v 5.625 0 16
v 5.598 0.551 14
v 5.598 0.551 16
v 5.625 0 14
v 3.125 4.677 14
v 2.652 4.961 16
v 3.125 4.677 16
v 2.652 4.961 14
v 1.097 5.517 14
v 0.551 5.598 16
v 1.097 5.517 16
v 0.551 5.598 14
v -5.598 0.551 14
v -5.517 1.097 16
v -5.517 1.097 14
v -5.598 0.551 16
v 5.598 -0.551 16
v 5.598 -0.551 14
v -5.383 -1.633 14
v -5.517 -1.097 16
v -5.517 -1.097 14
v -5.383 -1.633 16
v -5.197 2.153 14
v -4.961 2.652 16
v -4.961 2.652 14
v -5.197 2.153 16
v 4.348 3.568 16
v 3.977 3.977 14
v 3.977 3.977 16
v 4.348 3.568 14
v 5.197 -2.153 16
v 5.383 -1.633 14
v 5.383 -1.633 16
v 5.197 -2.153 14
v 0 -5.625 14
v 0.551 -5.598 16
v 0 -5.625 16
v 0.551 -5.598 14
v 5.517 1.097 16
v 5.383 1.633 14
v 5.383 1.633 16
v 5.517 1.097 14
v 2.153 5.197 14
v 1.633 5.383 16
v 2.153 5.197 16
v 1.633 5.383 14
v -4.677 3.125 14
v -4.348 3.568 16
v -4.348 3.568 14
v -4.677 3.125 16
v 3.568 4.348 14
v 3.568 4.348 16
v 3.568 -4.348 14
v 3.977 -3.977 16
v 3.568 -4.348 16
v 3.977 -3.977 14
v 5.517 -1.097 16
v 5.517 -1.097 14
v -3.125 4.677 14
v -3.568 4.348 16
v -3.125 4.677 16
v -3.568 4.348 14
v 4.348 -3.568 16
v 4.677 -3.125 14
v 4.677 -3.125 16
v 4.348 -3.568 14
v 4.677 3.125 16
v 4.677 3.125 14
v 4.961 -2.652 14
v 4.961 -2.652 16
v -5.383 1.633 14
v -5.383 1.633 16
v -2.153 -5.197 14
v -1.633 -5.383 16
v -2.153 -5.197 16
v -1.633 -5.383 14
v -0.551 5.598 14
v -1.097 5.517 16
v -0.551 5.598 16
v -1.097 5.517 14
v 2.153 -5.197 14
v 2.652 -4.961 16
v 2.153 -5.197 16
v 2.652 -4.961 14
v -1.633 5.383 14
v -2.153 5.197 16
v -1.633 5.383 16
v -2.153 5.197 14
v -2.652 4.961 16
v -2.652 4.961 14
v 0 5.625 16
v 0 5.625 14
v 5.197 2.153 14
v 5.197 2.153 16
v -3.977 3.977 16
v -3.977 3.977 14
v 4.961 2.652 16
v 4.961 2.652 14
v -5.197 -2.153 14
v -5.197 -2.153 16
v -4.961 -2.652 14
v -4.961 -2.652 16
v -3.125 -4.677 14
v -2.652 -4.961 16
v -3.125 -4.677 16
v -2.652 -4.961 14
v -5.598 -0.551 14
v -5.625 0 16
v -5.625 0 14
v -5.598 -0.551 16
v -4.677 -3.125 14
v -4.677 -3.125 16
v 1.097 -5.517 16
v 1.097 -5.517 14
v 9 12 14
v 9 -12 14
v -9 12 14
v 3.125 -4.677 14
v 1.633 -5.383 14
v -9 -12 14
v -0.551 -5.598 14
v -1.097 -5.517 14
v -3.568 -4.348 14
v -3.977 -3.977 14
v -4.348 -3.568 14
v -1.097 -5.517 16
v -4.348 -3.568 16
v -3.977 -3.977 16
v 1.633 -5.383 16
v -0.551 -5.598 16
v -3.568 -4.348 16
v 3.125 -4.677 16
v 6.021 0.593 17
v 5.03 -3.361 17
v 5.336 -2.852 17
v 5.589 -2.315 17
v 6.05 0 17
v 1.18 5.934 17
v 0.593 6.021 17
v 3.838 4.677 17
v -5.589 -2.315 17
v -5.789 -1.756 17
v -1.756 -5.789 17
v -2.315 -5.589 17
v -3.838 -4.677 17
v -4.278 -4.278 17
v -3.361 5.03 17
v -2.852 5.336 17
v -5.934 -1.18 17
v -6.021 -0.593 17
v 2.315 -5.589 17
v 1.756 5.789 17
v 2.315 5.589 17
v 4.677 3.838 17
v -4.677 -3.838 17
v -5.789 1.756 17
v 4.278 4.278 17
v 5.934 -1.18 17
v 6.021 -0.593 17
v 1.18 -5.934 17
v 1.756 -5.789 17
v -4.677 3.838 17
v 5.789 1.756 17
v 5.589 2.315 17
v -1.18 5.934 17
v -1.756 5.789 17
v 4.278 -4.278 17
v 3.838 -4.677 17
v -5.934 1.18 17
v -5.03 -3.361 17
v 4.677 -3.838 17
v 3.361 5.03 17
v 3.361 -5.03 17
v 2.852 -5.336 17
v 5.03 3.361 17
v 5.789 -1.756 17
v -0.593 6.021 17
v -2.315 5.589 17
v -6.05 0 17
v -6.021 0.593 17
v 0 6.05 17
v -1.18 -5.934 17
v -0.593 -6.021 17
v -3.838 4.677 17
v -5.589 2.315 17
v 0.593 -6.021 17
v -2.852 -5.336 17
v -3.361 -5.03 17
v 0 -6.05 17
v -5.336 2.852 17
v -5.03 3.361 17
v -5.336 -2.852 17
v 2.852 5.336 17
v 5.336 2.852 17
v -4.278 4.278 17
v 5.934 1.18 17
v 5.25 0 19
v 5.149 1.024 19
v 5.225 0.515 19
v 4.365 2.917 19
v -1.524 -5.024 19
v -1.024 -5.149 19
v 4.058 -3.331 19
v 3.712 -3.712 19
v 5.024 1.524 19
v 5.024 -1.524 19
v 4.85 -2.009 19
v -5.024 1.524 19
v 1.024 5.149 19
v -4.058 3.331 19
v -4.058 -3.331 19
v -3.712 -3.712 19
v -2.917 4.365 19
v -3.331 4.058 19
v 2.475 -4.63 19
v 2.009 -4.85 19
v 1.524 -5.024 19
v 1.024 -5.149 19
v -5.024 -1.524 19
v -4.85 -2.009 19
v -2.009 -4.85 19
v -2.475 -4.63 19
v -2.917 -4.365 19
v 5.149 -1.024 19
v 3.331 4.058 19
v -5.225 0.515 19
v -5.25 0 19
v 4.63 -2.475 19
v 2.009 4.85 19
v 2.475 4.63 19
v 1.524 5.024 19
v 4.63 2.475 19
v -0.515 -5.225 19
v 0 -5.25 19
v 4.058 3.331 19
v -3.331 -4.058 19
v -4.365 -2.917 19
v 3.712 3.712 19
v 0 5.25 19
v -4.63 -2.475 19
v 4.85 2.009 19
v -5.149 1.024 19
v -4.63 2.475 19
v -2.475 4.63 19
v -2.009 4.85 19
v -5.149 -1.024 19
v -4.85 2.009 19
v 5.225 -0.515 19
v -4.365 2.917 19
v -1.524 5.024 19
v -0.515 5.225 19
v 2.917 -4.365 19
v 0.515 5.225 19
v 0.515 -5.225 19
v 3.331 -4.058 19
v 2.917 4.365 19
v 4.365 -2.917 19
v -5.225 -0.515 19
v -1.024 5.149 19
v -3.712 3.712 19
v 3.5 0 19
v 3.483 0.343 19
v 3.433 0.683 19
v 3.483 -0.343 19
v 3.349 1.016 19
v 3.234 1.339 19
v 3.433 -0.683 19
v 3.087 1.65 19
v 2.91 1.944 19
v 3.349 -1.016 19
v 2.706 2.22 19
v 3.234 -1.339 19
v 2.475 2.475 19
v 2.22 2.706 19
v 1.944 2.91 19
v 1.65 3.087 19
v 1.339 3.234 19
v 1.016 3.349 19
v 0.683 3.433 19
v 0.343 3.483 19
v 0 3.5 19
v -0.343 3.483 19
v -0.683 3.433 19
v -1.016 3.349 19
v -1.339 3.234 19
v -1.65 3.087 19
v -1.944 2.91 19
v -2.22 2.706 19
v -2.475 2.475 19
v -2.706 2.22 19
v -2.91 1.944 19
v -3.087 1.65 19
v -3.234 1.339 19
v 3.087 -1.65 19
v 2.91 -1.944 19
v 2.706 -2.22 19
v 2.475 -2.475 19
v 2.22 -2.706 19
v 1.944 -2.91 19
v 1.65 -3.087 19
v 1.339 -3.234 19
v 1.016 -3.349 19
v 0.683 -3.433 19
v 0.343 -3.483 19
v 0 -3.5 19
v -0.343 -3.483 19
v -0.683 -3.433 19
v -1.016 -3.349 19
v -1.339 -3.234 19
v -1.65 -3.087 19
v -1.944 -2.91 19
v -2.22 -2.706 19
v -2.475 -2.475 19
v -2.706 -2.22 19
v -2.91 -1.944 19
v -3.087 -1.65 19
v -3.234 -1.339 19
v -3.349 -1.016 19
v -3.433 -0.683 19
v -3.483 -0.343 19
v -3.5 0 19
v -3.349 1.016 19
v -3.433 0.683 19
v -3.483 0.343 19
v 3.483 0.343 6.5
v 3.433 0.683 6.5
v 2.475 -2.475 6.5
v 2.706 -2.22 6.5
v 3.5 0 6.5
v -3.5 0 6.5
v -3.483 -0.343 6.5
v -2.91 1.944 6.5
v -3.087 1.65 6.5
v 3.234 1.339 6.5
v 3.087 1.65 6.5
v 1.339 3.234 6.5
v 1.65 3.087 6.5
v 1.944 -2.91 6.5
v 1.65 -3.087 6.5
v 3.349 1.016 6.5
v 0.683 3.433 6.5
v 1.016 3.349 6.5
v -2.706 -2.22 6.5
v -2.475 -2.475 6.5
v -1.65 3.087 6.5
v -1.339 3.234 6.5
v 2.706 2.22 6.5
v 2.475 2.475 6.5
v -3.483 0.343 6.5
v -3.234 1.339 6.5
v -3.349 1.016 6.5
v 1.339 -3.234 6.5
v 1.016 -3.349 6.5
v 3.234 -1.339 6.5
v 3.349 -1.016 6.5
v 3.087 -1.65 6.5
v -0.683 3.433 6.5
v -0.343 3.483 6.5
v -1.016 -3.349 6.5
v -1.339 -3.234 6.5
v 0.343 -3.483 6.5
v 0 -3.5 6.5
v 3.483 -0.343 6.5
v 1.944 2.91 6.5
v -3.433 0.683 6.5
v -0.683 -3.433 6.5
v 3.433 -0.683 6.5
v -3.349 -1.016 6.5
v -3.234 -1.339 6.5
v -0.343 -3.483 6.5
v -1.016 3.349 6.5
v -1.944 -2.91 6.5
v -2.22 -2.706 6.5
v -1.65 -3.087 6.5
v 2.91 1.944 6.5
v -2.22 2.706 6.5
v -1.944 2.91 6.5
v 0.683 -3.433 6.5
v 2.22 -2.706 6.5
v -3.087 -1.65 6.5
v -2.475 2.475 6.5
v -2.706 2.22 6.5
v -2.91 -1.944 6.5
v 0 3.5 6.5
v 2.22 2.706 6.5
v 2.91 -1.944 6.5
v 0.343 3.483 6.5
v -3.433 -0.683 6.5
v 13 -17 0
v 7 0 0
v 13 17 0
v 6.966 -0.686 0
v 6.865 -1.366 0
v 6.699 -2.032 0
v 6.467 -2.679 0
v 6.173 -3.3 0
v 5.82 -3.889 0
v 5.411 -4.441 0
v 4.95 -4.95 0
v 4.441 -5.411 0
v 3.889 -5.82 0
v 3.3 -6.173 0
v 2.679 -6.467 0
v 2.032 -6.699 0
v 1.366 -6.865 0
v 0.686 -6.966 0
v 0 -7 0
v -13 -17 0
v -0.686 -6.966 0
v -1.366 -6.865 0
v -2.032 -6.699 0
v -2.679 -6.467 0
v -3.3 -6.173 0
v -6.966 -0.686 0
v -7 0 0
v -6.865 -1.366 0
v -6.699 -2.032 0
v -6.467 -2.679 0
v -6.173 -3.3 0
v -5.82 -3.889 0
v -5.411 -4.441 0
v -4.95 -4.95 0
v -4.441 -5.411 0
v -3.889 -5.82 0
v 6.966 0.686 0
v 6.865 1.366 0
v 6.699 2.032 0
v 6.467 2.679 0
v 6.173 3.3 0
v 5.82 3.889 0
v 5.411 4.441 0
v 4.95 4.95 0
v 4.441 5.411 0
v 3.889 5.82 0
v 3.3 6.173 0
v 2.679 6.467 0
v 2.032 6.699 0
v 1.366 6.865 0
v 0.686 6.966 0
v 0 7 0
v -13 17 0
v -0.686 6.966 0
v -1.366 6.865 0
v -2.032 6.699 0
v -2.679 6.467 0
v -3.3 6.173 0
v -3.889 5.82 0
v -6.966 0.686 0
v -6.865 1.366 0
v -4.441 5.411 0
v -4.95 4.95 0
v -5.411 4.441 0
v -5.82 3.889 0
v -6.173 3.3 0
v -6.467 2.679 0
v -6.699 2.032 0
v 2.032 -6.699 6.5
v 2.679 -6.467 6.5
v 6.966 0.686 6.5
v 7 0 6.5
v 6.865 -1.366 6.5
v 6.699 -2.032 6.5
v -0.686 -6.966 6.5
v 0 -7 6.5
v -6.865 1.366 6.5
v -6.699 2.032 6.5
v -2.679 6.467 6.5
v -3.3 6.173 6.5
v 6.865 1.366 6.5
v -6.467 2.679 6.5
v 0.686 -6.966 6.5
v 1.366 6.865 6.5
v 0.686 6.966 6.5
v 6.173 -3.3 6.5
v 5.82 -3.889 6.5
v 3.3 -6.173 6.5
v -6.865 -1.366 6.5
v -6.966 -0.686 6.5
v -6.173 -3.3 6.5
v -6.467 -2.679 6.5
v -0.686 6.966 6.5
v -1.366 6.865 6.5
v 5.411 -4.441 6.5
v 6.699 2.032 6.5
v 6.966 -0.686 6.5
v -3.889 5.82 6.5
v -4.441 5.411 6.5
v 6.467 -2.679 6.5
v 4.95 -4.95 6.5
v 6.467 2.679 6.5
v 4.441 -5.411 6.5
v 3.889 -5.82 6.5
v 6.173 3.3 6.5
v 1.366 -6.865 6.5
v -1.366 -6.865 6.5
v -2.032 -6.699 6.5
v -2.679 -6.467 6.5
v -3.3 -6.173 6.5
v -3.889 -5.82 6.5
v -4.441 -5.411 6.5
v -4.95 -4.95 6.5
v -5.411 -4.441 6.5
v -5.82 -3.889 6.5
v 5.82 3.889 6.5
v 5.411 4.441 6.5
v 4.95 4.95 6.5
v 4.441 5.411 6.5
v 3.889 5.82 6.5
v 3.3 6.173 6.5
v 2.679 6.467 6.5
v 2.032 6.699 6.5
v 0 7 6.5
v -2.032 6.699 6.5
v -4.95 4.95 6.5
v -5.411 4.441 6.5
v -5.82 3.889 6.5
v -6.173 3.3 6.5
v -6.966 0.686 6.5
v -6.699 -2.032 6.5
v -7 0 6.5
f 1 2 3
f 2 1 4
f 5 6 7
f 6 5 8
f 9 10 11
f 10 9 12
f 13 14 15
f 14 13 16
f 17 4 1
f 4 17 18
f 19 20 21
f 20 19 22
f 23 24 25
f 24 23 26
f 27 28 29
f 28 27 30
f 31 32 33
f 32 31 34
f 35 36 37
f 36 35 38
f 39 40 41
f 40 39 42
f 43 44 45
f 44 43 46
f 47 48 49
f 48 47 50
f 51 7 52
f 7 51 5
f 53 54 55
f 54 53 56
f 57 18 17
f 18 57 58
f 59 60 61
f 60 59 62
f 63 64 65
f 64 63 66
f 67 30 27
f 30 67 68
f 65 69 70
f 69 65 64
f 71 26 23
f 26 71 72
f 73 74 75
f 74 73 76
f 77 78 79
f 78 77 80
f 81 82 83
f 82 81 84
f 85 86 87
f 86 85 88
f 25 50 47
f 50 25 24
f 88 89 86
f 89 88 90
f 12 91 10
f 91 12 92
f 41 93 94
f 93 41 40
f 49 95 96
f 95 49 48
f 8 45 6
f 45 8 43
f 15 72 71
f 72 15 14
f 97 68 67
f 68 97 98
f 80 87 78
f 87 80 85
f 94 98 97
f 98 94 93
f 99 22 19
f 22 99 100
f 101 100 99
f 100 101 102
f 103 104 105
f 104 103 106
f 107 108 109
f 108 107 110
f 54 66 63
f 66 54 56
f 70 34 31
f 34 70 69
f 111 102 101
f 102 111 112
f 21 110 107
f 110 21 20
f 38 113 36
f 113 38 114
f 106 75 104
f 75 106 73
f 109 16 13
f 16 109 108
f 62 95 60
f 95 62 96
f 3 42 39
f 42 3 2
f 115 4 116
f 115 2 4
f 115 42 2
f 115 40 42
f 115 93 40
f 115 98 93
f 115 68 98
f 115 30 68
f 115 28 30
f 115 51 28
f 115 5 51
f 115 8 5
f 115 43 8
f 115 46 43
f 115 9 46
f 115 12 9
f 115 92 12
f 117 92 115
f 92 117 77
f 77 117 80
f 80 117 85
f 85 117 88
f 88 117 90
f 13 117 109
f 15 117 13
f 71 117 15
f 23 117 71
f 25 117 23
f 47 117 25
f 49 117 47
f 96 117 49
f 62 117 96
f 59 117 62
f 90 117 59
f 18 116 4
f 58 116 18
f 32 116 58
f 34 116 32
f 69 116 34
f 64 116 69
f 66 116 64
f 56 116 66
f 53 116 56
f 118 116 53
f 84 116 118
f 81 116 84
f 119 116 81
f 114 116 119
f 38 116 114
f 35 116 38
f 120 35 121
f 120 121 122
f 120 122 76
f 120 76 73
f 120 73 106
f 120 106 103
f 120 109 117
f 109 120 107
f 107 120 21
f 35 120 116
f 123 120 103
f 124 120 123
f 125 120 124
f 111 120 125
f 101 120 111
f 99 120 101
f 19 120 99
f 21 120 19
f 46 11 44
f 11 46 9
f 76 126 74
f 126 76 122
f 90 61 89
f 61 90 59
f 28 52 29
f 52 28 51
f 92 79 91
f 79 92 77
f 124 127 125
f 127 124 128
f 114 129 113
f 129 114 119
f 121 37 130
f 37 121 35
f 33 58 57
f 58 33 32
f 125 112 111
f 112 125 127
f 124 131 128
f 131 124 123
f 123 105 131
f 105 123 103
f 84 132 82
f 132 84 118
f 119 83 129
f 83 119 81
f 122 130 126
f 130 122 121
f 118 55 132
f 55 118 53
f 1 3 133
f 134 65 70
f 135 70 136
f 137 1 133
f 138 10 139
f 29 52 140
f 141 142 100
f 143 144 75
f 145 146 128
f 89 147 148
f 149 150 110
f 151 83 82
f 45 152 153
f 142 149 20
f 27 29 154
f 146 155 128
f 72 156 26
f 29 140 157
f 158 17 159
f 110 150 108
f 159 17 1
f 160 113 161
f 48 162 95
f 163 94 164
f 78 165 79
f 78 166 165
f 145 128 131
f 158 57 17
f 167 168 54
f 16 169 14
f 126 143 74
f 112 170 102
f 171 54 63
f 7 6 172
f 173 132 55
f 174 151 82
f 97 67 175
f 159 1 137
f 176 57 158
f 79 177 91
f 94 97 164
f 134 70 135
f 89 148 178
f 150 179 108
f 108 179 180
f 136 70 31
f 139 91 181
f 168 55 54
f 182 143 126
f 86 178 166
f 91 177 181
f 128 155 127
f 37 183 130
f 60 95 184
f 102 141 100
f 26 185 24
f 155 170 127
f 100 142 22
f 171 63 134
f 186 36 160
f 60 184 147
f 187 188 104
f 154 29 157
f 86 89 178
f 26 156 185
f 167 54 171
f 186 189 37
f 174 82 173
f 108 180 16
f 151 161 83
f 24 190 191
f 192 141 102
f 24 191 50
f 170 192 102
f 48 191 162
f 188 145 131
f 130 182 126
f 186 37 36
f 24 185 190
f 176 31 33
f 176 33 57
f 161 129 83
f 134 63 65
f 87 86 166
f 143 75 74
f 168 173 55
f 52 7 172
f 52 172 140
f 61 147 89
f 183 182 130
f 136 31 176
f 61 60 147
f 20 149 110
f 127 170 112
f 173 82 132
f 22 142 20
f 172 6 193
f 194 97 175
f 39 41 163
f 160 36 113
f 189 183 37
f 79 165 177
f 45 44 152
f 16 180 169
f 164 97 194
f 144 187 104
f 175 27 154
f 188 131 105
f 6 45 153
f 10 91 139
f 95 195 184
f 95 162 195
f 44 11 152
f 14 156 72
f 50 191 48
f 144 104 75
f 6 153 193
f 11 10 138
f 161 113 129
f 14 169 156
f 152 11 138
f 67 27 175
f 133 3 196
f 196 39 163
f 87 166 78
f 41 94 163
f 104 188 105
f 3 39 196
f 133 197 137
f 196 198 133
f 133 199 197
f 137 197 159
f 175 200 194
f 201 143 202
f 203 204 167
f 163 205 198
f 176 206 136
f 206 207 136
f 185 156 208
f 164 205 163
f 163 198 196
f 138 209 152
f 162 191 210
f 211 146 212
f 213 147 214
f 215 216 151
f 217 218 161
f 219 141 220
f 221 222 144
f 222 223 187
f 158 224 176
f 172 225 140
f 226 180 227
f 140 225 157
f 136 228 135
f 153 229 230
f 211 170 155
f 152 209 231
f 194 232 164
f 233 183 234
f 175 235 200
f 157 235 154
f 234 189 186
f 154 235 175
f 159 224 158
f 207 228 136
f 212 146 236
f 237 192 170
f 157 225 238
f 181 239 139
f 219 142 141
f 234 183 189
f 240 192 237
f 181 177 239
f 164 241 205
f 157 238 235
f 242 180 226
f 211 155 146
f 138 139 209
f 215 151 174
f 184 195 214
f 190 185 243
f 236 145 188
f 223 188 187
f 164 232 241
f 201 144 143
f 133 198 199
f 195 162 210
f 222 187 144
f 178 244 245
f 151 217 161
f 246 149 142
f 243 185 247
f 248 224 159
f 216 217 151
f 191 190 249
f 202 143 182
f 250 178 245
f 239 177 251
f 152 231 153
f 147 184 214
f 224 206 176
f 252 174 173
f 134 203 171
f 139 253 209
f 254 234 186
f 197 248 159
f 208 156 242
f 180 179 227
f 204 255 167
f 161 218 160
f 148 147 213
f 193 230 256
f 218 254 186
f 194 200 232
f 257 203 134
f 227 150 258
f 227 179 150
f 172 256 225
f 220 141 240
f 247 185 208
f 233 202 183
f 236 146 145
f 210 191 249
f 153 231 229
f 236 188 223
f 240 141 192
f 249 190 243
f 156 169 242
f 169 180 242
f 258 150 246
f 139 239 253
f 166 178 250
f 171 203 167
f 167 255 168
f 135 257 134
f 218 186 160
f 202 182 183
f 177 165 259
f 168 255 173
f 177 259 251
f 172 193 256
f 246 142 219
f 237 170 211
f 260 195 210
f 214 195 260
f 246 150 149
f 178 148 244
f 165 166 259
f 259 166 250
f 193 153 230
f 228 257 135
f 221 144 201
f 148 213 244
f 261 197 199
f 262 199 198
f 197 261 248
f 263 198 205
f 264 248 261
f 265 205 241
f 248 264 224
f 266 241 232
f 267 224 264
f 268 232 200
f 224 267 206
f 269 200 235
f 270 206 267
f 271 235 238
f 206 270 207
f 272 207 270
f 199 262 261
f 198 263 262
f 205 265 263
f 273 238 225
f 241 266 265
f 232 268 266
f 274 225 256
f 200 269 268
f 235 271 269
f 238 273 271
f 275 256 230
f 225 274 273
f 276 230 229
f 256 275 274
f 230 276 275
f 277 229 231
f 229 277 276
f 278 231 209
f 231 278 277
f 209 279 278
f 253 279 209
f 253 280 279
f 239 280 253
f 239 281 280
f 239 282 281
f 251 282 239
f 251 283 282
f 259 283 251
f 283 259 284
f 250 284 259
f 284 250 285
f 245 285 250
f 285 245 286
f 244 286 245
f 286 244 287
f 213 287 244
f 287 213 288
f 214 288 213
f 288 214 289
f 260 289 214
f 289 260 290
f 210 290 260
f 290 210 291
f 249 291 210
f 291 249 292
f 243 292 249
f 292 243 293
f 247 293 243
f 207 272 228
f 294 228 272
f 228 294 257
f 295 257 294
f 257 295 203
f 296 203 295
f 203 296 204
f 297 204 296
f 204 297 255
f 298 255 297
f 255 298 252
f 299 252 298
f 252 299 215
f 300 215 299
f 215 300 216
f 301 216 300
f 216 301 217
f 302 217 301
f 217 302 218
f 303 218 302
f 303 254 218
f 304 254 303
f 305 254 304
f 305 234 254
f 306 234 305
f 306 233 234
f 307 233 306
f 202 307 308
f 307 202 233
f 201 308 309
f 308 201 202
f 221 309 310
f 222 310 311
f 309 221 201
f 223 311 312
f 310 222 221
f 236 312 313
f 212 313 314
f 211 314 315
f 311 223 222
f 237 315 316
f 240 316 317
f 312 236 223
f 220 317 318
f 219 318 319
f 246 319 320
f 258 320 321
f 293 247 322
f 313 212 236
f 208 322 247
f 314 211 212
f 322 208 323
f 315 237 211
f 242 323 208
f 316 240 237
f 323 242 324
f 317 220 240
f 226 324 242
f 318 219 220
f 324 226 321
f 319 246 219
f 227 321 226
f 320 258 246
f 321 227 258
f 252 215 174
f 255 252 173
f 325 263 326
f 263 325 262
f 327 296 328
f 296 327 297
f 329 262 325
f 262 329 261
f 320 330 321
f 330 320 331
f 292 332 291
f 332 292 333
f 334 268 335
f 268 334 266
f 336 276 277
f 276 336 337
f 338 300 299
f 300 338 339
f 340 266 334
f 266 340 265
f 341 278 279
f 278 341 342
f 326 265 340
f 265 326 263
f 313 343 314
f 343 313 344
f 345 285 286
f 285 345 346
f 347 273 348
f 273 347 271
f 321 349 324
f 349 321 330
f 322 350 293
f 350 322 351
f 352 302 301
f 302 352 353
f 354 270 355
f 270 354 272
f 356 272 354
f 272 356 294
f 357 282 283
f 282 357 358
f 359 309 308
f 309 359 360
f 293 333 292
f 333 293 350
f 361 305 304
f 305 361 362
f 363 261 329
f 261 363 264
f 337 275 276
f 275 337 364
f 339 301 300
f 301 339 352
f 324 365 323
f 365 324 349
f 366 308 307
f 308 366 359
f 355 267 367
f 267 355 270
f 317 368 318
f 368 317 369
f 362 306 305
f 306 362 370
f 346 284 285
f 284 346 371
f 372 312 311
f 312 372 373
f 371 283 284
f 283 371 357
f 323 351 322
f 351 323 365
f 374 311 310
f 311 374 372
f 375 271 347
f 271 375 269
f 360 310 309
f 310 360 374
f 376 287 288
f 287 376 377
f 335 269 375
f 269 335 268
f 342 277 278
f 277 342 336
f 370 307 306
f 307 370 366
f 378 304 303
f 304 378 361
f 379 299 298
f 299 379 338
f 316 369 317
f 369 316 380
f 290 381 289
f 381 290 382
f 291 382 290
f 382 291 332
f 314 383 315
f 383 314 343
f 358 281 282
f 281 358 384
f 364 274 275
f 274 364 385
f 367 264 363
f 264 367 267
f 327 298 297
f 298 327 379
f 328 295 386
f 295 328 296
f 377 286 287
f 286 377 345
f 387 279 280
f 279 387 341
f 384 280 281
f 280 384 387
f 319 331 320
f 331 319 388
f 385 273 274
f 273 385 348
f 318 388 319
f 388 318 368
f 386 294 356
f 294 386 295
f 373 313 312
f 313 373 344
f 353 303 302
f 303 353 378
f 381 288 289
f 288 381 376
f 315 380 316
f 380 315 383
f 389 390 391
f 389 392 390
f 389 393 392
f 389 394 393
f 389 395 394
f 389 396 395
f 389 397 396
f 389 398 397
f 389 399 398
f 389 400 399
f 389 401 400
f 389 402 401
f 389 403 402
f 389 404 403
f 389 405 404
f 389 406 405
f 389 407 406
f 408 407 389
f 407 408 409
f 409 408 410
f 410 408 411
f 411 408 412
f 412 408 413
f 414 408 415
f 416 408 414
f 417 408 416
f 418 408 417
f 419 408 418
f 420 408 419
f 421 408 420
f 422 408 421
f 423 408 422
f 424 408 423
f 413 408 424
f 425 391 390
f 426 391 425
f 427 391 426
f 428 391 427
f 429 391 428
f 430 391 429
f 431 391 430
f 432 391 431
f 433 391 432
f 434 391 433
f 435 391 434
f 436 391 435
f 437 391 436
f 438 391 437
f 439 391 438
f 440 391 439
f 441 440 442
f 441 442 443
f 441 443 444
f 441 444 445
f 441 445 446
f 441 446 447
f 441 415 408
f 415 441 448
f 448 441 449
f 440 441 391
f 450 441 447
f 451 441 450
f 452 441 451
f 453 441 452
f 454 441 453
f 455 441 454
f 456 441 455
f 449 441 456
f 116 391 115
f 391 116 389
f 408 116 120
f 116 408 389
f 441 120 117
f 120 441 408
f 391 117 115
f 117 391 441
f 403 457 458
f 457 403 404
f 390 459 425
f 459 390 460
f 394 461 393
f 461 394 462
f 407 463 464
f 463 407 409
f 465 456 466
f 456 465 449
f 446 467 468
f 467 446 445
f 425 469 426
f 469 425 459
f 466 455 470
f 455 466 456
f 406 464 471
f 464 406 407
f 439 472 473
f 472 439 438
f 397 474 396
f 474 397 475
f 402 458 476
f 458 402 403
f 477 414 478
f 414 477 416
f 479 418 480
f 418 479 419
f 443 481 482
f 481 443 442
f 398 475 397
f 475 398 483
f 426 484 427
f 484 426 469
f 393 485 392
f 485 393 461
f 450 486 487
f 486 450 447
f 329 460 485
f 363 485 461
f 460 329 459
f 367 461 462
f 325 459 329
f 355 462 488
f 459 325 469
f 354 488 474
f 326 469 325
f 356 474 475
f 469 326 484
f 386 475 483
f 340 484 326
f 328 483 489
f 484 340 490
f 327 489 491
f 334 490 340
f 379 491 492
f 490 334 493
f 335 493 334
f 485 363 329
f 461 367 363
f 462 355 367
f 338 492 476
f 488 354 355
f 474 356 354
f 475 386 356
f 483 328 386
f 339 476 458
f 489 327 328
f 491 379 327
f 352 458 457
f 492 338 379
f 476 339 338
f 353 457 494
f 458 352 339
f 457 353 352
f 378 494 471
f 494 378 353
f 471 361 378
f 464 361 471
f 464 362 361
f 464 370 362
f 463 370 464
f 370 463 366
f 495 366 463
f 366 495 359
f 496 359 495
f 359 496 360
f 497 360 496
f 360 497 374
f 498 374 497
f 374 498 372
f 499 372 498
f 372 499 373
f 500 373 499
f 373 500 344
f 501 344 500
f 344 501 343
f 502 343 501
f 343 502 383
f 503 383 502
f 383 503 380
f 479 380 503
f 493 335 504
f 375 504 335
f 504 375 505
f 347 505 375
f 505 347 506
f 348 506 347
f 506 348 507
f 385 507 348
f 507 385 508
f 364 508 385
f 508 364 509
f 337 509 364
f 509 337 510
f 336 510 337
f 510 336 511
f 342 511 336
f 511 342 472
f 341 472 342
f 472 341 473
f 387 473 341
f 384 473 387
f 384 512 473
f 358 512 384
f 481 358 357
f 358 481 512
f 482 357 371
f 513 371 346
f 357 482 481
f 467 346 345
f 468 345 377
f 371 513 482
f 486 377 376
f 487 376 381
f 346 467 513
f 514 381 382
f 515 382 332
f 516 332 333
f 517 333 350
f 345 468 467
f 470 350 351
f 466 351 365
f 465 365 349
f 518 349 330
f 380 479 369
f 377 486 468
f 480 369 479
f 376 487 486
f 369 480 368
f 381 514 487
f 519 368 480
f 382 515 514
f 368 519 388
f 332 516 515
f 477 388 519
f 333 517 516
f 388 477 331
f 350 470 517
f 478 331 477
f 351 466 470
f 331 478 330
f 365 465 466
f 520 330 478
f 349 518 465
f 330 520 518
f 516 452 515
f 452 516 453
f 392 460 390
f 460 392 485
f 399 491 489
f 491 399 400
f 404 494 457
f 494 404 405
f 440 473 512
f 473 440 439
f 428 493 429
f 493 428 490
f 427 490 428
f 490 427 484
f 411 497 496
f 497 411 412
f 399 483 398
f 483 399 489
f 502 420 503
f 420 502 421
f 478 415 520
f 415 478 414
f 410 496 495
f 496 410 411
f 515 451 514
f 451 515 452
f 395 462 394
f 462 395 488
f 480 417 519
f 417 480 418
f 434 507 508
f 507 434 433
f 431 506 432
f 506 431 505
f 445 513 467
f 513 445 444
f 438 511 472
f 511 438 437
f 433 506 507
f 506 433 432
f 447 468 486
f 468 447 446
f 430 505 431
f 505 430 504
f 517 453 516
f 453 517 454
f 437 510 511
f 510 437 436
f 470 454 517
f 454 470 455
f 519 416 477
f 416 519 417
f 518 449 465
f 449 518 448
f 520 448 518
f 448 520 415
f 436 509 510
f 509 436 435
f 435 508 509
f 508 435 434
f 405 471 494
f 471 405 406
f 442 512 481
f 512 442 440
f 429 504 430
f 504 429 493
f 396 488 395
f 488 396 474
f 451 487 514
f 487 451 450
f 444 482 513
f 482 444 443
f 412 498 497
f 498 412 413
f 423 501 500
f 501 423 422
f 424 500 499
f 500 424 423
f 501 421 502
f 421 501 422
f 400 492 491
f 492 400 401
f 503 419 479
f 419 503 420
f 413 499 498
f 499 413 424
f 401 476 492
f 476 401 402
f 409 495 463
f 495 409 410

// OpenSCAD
// --- Parameters ---
// All dimensions are in millimeters (mm)

// Main Body Dimensions
top_width = 18;      // 2cm across the narrow way
top_length = 24;     // 3cm long
bottom_width = 26;   // 3cm across the narrow way
bottom_length = 34;  // 4cm long
foot_height = 14;    // 1.5cm tall

// Screw Hole Dimensions
screw_hole_dia = 7;  // ID of screw hole

// Counterbore (Wider opening at the bottom for a screw head)
counterbore_height = foot_height - 7.5;
counterbore_dia = 14; // Assumed diameter based on image proportions. Change if needed.

// Press-fit Cylinder on Top Face
cylinder_height_1 = 2;     // First segment: constant 11.5mm diameter
cylinder_height_2 = 1.0;     // Second segment: expand to 12.5mm diameter
cylinder_height_3 = 2.0;     // Third segment: shrink to 10.5mm diameter
total_cylinder_height = cylinder_height_1 + cylinder_height_2 + cylinder_height_3;

cylinder_dia_1 = 11.25;       // Starting diameter
cylinder_dia_2 = 12.1;       // Expanded diameter (11.5 + 1.0)
cylinder_dia_3 = 10.5;       // Final diameter (12.5 - 2.0)

cylinder_inner_dia = screw_hole_dia; // Interior diameter equals hole diameter


// --- Module Definition ---
module typewriter_foot() {
    // Use difference() to create the main body and then subtract the holes
    difference() {
        // Combine the main body and press-fit cylinder
        union() {
            // 1. Main trapezoidal body using polyhedron for precision
            polyhedron(
            points = [
                // Bottom vertices (z=0)
                [-bottom_width/2, -bottom_length/2, 0], // 0: front-left
                [ bottom_width/2, -bottom_length/2, 0], // 1: front-right
                [ bottom_width/2,  bottom_length/2, 0], // 2: back-right
                [-bottom_width/2,  bottom_length/2, 0], // 3: back-left
                // Top vertices (z=foot_height)
                [-top_width/2, -top_length/2, foot_height],    // 4: front-left
                [ top_width/2, -top_length/2, foot_height],    // 5: front-right
                [ top_width/2,  top_length/2, foot_height],    // 6: back-right
                [-top_width/2,  top_length/2, foot_height]     // 7: back-left
            ],
            // Define the 6 faces of the shape using the vertex indices above
            faces = [
                [0, 1, 2, 3], // Bottom face
                [4, 5, 1, 0], // Front face
                [7, 6, 5, 4], // Top face
                [5, 6, 2, 1], // Right face
                [6, 7, 3, 2], // Back face
                [7, 4, 0, 3]  // Left face
            ]
        );

        // 2. Press-fit cylinder on top face with locking profile
        translate([0, 0, foot_height]) {
            difference() {
                // Outer cylinder with press-fit profile
                union() {
                    // Segment 1: Constant 11.5mm diameter for 1.5mm height
                    cylinder(h = cylinder_height_1, d = cylinder_dia_1, center = false, $fn=64);

                    // Segment 2: Expand from 11.5mm to 12.5mm over 1mm height
                    translate([0, 0, cylinder_height_1]) {
                        cylinder(h = cylinder_height_2, d1 = cylinder_dia_1, d2 = cylinder_dia_2, center = false, $fn=64);
                    }

                    // Segment 3: Shrink from 12.5mm to 10.5mm over 2mm height
                    translate([0, 0, cylinder_height_1 + cylinder_height_2]) {
                        cylinder(h = cylinder_height_3, d1 = cylinder_dia_2, d2 = cylinder_dia_3, center = false, $fn=64);
                    }
                }
                // Inner hole
                translate([0, 0, -0.1]) {
                    cylinder(h = total_cylinder_height + 0.2, d = cylinder_inner_dia, center = false, $fn=64);
                }
            }
        }
        }

        // 3. Center screw hole (goes all the way through)
        // We make it slightly taller than the object to ensure a clean cut
        translate([0, 0, -1]) {
            cylinder(h = foot_height + total_cylinder_height + 2, d = screw_hole_dia, center = false, $fn=64);
        }

        // 4. Counterbore (the wider recess at the bottom)
        // Also made slightly taller to ensure a clean cut from the bottom
         translate([0, 0, -1]) {
            cylinder(h = counterbore_height + 1, d = counterbore_dia, center = false, $fn=64);
        }
    }
}


// --- Render the Final Object ---
typewriter_foot();
